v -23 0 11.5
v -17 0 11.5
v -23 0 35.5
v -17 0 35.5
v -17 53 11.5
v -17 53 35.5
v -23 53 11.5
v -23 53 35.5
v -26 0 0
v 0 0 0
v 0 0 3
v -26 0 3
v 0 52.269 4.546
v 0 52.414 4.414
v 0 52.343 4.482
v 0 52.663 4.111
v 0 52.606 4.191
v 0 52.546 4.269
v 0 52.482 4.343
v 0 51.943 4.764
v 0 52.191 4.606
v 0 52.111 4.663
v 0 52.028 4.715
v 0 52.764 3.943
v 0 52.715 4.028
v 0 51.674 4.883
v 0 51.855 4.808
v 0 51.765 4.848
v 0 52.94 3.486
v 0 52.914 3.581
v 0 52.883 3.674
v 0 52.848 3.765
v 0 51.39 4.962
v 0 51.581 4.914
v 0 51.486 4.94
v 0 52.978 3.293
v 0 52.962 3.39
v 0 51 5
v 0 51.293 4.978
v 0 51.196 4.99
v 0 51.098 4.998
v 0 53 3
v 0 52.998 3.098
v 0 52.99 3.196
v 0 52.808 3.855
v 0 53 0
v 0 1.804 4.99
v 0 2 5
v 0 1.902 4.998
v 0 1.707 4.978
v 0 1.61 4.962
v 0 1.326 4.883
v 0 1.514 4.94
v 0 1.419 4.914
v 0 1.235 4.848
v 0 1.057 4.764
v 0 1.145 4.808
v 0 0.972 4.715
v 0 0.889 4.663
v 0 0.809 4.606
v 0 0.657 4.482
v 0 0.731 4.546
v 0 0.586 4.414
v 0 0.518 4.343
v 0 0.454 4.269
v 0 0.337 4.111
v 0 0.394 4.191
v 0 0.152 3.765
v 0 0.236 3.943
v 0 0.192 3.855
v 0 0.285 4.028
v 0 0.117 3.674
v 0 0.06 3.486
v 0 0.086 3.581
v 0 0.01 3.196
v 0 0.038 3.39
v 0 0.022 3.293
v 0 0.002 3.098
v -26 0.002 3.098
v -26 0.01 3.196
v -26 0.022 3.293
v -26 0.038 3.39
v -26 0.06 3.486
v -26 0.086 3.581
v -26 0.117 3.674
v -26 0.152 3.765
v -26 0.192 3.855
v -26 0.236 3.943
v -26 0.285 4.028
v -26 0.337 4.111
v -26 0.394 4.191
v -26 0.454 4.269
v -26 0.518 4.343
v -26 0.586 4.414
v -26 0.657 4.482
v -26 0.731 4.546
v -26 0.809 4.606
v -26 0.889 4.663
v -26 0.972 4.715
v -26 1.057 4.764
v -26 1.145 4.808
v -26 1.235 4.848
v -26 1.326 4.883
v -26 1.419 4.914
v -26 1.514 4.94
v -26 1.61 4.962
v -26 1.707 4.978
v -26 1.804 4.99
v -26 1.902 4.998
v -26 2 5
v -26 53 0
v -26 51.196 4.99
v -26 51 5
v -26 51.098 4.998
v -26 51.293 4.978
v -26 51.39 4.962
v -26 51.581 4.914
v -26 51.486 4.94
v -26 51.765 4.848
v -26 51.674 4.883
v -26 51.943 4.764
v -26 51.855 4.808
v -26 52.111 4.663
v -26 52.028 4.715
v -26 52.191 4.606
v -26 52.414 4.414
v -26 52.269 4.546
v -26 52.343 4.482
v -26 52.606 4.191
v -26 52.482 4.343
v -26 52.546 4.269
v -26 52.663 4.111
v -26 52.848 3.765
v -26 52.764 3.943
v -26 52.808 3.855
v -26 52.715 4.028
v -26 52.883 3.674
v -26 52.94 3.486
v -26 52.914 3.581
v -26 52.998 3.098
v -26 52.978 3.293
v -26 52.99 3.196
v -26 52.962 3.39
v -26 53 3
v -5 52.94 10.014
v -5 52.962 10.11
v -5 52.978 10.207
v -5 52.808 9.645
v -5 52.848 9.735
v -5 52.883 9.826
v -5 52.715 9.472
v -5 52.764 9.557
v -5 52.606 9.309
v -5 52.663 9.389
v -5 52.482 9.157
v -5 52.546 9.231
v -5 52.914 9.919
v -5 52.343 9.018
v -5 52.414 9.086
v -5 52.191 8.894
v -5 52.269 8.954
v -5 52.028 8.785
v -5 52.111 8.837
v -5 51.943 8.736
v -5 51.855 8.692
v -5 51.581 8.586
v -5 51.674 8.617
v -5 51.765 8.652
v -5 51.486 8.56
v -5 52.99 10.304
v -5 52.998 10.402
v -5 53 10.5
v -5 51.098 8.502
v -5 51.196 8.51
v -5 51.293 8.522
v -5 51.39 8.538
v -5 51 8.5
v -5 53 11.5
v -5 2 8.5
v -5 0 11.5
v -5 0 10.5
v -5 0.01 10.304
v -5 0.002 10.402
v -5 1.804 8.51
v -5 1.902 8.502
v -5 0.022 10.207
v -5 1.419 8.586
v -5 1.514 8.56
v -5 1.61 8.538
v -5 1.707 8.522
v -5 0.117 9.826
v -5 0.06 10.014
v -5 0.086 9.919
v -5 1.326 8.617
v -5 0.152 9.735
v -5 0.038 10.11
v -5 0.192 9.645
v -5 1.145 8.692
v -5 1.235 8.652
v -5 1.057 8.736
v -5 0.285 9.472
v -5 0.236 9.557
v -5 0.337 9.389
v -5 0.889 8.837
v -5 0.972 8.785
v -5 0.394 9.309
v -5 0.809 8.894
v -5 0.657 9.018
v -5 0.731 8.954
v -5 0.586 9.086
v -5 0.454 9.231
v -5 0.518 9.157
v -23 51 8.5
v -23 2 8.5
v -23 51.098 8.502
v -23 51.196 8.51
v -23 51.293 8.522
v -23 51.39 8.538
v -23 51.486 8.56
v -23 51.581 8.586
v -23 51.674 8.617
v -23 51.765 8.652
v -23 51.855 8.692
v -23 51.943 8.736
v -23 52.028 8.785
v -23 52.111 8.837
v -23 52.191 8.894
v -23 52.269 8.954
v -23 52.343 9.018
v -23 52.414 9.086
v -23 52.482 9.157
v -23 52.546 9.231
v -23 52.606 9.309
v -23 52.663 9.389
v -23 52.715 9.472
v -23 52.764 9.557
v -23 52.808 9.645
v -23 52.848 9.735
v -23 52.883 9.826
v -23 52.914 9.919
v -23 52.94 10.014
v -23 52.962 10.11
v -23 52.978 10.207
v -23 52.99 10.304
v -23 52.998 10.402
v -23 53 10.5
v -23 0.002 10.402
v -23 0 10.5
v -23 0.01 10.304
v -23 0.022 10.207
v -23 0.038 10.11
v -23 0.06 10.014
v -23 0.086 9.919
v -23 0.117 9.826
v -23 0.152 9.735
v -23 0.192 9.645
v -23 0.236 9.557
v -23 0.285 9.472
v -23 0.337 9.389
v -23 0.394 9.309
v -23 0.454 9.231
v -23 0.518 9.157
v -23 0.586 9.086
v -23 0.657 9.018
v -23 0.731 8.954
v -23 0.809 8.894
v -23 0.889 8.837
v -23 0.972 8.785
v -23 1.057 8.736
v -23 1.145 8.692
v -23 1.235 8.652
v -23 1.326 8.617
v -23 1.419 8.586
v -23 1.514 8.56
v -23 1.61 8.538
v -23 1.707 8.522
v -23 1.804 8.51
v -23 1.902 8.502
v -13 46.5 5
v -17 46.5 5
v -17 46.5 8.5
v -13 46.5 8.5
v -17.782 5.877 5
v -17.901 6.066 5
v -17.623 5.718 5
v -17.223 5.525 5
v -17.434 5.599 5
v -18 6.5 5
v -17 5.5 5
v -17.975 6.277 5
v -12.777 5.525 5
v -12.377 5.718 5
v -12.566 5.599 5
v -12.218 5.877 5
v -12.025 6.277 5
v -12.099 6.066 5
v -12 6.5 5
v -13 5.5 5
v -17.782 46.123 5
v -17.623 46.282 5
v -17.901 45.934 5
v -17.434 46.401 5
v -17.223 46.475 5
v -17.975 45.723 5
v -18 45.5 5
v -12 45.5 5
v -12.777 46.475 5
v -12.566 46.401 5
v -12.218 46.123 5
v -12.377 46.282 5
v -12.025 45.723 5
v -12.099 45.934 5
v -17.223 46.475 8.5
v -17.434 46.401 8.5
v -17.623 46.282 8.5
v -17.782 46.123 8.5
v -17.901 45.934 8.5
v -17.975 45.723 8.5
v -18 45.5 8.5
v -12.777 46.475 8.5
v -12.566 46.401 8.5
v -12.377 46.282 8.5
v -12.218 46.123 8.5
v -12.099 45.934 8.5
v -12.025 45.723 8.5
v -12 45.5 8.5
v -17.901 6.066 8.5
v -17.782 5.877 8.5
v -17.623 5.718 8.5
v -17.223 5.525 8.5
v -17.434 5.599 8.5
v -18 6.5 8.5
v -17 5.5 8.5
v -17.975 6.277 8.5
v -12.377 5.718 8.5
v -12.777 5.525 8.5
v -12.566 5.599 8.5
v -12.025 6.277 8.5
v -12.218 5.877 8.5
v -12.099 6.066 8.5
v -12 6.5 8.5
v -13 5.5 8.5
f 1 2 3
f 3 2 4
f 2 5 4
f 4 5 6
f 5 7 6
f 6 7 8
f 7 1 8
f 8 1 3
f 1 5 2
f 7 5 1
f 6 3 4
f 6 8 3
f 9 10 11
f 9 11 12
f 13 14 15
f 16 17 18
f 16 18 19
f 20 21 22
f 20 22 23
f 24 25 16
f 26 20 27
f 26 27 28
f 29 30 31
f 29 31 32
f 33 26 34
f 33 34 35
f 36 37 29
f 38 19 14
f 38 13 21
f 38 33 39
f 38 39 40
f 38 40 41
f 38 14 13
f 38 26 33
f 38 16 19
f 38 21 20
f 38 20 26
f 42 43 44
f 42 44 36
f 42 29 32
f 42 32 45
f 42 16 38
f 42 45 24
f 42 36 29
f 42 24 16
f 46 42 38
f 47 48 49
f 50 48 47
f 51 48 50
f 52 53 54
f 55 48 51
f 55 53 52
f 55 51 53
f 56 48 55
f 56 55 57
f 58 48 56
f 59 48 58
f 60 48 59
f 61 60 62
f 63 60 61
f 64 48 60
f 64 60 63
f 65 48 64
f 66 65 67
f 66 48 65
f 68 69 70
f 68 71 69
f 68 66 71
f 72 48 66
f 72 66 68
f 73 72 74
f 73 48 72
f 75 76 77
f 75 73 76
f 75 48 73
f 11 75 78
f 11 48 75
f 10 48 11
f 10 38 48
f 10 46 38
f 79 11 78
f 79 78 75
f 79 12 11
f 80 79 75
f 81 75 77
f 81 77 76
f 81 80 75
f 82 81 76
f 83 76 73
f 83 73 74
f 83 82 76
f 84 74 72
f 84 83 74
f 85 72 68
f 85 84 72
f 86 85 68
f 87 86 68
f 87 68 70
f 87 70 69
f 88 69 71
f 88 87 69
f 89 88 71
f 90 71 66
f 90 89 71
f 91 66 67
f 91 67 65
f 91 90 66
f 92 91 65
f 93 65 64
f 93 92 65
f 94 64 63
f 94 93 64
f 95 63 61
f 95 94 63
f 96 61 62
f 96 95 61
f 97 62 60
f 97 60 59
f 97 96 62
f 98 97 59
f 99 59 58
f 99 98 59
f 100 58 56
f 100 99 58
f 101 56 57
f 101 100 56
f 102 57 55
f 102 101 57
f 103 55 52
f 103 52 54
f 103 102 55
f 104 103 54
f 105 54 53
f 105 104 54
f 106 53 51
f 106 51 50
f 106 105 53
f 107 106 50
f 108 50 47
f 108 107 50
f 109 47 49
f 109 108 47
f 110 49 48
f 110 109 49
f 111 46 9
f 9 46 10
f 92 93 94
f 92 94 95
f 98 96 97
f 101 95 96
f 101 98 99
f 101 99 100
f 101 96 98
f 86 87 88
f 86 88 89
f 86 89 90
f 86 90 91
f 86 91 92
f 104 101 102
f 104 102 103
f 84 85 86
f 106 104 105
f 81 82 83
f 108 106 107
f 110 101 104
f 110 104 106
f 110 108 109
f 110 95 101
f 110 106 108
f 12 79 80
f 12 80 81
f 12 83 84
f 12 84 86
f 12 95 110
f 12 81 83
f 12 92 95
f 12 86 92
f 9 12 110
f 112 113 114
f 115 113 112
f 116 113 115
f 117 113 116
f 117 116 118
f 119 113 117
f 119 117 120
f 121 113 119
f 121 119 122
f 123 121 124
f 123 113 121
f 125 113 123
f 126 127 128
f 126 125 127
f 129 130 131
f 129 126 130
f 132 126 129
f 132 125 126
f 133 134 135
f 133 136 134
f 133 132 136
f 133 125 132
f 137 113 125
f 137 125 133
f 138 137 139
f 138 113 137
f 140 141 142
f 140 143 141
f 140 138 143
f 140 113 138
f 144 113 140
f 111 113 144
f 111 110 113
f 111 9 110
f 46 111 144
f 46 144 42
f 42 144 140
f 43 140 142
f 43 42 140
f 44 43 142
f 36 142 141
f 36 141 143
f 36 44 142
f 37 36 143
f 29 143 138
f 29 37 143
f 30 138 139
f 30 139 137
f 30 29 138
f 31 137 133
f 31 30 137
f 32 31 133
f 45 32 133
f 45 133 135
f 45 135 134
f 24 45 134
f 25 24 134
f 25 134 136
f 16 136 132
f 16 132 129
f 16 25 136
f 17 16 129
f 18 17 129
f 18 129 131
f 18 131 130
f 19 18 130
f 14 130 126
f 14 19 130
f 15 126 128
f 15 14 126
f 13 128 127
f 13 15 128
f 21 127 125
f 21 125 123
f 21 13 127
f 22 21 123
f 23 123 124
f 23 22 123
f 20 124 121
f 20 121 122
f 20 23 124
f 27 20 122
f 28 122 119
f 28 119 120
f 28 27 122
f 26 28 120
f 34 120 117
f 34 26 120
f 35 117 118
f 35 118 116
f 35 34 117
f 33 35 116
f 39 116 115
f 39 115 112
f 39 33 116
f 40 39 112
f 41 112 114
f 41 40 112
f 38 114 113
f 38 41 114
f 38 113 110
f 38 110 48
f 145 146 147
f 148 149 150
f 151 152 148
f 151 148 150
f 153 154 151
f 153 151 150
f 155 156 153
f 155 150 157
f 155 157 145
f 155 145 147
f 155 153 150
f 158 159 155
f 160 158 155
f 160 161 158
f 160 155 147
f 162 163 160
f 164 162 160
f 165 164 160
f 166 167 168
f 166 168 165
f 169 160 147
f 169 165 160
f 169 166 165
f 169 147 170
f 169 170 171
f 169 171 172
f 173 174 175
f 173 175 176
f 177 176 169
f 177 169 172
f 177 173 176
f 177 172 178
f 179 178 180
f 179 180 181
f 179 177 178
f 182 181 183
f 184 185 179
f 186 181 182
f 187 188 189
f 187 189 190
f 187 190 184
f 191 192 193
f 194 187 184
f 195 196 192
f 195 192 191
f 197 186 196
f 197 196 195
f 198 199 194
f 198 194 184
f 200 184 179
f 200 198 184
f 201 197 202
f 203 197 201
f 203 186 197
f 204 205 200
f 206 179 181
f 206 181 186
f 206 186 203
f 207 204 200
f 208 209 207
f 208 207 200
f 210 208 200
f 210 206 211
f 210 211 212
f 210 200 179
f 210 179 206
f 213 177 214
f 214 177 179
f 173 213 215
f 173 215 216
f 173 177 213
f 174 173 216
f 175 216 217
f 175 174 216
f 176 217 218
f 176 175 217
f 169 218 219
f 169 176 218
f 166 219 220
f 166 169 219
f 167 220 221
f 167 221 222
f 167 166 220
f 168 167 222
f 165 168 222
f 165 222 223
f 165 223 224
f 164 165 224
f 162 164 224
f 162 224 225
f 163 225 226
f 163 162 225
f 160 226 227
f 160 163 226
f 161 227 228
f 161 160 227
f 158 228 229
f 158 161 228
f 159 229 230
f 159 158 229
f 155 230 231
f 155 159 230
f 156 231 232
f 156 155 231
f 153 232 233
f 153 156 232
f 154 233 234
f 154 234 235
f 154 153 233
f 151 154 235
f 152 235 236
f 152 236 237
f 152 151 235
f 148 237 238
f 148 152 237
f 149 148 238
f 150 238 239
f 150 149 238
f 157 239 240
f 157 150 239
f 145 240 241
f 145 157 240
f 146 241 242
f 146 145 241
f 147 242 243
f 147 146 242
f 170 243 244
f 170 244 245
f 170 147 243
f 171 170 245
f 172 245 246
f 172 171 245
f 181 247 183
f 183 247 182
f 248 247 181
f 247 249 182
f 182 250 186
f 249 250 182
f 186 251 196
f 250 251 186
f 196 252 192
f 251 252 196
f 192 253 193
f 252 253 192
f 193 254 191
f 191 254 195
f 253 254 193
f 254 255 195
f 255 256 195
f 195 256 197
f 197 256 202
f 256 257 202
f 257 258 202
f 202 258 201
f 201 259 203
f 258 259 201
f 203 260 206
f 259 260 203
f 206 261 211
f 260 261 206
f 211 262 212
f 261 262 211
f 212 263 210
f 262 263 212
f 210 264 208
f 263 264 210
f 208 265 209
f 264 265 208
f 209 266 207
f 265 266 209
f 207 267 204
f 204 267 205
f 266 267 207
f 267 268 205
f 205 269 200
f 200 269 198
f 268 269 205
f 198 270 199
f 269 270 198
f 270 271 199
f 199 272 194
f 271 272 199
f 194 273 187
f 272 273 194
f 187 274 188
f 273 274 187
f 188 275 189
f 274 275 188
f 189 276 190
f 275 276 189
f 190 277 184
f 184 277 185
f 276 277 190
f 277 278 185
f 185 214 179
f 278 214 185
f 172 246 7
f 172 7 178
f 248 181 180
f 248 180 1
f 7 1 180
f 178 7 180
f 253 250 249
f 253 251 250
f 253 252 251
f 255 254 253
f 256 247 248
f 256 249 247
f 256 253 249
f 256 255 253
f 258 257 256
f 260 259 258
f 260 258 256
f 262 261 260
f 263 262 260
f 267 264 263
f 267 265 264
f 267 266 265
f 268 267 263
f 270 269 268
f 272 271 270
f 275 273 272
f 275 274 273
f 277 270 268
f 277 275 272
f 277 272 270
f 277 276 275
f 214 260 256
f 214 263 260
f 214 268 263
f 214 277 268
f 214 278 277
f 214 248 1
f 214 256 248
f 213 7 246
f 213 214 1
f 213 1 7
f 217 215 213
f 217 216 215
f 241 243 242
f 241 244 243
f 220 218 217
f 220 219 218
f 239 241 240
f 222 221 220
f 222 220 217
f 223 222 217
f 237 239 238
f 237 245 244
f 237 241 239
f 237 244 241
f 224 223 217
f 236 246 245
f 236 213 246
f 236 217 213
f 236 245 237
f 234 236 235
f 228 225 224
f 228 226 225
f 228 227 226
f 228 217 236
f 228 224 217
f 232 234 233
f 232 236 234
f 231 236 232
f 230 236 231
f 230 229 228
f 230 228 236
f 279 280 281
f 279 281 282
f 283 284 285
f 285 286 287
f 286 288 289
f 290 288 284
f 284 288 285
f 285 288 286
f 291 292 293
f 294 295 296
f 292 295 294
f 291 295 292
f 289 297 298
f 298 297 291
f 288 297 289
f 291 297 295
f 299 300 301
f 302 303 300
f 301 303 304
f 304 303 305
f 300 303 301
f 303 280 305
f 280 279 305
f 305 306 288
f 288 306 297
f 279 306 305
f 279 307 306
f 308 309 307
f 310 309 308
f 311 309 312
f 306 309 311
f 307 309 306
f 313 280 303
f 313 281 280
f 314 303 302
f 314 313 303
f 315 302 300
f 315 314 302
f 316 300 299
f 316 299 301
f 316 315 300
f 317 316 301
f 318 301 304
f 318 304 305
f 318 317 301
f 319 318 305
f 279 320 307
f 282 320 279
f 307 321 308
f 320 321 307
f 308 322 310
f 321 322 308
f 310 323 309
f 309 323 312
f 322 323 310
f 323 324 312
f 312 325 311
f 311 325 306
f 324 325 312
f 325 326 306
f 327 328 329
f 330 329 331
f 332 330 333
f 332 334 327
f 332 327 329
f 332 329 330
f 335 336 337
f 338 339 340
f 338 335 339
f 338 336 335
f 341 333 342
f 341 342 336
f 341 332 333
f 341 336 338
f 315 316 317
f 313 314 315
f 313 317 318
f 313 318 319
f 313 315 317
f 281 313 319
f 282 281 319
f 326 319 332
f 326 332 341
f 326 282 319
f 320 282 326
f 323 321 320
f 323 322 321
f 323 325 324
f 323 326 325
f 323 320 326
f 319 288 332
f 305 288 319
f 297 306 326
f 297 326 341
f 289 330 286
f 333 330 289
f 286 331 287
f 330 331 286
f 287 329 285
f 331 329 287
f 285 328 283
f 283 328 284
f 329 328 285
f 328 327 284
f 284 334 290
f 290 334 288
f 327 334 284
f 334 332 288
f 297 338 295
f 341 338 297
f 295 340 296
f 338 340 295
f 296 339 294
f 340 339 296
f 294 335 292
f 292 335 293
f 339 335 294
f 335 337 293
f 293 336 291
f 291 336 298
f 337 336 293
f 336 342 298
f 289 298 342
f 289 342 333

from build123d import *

# Parameters (mm, degrees)
SKETCH003_W      = 6
SKETCH003_H      = 53
EXTRUDE003_DEPTH = 24
SKETCH_W         = 26
SKETCH_H         = 53
EXTRUDE_DEPTH    = 5
FILLET001_R      = 2
SKETCH002_W      = 18
SKETCH002_H      = 53
EXTRUDE002_DEPTH = 3
FILLET_R         = 2
FILLET002_R      = 2
SKETCH001_W      = 6
SKETCH001_H      = 41
EXTRUDE001_DEPTH = 3.5
FILLET003_R      = 1


with BuildPart() as extrude003:
    # Sketch003 (on Face6 of Extrude002) → Extrude003 (new body)
    with BuildSketch(Plane.XY.offset(11.5)):
        with Locations((-20, 26.5)):
            Rectangle(SKETCH003_W, SKETCH003_H)
    extrude(amount=EXTRUDE003_DEPTH)


with BuildPart() as fillet001:
    # Sketch → Extrude (new body)
    with BuildSketch(Plane.XY):
        with Locations((-13, 26.5)):
            Rectangle(SKETCH_W, SKETCH_H)
    extrude(amount=EXTRUDE_DEPTH)

    # Fillet001
    fillet001_edges = [fillet001.edges().sort_by_distance(p)[0] for p in [
        (-13, 0, 5),
        (-13, 53, 5),
    ]]
    fillet(fillet001_edges, radius=FILLET001_R)


with BuildPart() as fillet002:
    # Sketch002 (on Face6 of Extrude001) → Extrude002 (new body)
    with BuildSketch(Plane.XY.offset(8.5)):
        with Locations((-14, 26.5)):
            Rectangle(SKETCH002_W, SKETCH002_H)
    extrude(amount=EXTRUDE002_DEPTH)

    # Fillet
    fillet_edges = [fillet002.edges().sort_by_distance(p)[0] for p in [
        (-14, 0, 8.5),
    ]]
    fillet(fillet_edges, radius=FILLET_R)

    # Fillet002
    fillet002_edges = [fillet002.edges().sort_by_distance(p)[0] for p in [
        (-14, 53, 8.5),
    ]]
    fillet(fillet002_edges, radius=FILLET002_R)


with BuildPart() as fillet003:
    # Sketch001 (on Face6 of Extrude) → Extrude001 (new body)
    with BuildSketch(Plane.XY.offset(5)):
        with Locations((-15, 26)):
            Rectangle(SKETCH001_W, SKETCH001_H)
    extrude(amount=EXTRUDE001_DEPTH)

    # Fillet003
    fillet003_edges = [fillet003.edges().sort_by_distance(p)[0] for p in [
        (-18, 46.5, 6.75),
        (-12, 46.5, 6.75),
        (-12, 5.5, 6.75),
        (-18, 5.5, 6.75),
    ]]
    fillet(fillet003_edges, radius=FILLET003_R)


solid = Compound([extrude003.part, fillet001.part, fillet002.part, fillet003.part])
